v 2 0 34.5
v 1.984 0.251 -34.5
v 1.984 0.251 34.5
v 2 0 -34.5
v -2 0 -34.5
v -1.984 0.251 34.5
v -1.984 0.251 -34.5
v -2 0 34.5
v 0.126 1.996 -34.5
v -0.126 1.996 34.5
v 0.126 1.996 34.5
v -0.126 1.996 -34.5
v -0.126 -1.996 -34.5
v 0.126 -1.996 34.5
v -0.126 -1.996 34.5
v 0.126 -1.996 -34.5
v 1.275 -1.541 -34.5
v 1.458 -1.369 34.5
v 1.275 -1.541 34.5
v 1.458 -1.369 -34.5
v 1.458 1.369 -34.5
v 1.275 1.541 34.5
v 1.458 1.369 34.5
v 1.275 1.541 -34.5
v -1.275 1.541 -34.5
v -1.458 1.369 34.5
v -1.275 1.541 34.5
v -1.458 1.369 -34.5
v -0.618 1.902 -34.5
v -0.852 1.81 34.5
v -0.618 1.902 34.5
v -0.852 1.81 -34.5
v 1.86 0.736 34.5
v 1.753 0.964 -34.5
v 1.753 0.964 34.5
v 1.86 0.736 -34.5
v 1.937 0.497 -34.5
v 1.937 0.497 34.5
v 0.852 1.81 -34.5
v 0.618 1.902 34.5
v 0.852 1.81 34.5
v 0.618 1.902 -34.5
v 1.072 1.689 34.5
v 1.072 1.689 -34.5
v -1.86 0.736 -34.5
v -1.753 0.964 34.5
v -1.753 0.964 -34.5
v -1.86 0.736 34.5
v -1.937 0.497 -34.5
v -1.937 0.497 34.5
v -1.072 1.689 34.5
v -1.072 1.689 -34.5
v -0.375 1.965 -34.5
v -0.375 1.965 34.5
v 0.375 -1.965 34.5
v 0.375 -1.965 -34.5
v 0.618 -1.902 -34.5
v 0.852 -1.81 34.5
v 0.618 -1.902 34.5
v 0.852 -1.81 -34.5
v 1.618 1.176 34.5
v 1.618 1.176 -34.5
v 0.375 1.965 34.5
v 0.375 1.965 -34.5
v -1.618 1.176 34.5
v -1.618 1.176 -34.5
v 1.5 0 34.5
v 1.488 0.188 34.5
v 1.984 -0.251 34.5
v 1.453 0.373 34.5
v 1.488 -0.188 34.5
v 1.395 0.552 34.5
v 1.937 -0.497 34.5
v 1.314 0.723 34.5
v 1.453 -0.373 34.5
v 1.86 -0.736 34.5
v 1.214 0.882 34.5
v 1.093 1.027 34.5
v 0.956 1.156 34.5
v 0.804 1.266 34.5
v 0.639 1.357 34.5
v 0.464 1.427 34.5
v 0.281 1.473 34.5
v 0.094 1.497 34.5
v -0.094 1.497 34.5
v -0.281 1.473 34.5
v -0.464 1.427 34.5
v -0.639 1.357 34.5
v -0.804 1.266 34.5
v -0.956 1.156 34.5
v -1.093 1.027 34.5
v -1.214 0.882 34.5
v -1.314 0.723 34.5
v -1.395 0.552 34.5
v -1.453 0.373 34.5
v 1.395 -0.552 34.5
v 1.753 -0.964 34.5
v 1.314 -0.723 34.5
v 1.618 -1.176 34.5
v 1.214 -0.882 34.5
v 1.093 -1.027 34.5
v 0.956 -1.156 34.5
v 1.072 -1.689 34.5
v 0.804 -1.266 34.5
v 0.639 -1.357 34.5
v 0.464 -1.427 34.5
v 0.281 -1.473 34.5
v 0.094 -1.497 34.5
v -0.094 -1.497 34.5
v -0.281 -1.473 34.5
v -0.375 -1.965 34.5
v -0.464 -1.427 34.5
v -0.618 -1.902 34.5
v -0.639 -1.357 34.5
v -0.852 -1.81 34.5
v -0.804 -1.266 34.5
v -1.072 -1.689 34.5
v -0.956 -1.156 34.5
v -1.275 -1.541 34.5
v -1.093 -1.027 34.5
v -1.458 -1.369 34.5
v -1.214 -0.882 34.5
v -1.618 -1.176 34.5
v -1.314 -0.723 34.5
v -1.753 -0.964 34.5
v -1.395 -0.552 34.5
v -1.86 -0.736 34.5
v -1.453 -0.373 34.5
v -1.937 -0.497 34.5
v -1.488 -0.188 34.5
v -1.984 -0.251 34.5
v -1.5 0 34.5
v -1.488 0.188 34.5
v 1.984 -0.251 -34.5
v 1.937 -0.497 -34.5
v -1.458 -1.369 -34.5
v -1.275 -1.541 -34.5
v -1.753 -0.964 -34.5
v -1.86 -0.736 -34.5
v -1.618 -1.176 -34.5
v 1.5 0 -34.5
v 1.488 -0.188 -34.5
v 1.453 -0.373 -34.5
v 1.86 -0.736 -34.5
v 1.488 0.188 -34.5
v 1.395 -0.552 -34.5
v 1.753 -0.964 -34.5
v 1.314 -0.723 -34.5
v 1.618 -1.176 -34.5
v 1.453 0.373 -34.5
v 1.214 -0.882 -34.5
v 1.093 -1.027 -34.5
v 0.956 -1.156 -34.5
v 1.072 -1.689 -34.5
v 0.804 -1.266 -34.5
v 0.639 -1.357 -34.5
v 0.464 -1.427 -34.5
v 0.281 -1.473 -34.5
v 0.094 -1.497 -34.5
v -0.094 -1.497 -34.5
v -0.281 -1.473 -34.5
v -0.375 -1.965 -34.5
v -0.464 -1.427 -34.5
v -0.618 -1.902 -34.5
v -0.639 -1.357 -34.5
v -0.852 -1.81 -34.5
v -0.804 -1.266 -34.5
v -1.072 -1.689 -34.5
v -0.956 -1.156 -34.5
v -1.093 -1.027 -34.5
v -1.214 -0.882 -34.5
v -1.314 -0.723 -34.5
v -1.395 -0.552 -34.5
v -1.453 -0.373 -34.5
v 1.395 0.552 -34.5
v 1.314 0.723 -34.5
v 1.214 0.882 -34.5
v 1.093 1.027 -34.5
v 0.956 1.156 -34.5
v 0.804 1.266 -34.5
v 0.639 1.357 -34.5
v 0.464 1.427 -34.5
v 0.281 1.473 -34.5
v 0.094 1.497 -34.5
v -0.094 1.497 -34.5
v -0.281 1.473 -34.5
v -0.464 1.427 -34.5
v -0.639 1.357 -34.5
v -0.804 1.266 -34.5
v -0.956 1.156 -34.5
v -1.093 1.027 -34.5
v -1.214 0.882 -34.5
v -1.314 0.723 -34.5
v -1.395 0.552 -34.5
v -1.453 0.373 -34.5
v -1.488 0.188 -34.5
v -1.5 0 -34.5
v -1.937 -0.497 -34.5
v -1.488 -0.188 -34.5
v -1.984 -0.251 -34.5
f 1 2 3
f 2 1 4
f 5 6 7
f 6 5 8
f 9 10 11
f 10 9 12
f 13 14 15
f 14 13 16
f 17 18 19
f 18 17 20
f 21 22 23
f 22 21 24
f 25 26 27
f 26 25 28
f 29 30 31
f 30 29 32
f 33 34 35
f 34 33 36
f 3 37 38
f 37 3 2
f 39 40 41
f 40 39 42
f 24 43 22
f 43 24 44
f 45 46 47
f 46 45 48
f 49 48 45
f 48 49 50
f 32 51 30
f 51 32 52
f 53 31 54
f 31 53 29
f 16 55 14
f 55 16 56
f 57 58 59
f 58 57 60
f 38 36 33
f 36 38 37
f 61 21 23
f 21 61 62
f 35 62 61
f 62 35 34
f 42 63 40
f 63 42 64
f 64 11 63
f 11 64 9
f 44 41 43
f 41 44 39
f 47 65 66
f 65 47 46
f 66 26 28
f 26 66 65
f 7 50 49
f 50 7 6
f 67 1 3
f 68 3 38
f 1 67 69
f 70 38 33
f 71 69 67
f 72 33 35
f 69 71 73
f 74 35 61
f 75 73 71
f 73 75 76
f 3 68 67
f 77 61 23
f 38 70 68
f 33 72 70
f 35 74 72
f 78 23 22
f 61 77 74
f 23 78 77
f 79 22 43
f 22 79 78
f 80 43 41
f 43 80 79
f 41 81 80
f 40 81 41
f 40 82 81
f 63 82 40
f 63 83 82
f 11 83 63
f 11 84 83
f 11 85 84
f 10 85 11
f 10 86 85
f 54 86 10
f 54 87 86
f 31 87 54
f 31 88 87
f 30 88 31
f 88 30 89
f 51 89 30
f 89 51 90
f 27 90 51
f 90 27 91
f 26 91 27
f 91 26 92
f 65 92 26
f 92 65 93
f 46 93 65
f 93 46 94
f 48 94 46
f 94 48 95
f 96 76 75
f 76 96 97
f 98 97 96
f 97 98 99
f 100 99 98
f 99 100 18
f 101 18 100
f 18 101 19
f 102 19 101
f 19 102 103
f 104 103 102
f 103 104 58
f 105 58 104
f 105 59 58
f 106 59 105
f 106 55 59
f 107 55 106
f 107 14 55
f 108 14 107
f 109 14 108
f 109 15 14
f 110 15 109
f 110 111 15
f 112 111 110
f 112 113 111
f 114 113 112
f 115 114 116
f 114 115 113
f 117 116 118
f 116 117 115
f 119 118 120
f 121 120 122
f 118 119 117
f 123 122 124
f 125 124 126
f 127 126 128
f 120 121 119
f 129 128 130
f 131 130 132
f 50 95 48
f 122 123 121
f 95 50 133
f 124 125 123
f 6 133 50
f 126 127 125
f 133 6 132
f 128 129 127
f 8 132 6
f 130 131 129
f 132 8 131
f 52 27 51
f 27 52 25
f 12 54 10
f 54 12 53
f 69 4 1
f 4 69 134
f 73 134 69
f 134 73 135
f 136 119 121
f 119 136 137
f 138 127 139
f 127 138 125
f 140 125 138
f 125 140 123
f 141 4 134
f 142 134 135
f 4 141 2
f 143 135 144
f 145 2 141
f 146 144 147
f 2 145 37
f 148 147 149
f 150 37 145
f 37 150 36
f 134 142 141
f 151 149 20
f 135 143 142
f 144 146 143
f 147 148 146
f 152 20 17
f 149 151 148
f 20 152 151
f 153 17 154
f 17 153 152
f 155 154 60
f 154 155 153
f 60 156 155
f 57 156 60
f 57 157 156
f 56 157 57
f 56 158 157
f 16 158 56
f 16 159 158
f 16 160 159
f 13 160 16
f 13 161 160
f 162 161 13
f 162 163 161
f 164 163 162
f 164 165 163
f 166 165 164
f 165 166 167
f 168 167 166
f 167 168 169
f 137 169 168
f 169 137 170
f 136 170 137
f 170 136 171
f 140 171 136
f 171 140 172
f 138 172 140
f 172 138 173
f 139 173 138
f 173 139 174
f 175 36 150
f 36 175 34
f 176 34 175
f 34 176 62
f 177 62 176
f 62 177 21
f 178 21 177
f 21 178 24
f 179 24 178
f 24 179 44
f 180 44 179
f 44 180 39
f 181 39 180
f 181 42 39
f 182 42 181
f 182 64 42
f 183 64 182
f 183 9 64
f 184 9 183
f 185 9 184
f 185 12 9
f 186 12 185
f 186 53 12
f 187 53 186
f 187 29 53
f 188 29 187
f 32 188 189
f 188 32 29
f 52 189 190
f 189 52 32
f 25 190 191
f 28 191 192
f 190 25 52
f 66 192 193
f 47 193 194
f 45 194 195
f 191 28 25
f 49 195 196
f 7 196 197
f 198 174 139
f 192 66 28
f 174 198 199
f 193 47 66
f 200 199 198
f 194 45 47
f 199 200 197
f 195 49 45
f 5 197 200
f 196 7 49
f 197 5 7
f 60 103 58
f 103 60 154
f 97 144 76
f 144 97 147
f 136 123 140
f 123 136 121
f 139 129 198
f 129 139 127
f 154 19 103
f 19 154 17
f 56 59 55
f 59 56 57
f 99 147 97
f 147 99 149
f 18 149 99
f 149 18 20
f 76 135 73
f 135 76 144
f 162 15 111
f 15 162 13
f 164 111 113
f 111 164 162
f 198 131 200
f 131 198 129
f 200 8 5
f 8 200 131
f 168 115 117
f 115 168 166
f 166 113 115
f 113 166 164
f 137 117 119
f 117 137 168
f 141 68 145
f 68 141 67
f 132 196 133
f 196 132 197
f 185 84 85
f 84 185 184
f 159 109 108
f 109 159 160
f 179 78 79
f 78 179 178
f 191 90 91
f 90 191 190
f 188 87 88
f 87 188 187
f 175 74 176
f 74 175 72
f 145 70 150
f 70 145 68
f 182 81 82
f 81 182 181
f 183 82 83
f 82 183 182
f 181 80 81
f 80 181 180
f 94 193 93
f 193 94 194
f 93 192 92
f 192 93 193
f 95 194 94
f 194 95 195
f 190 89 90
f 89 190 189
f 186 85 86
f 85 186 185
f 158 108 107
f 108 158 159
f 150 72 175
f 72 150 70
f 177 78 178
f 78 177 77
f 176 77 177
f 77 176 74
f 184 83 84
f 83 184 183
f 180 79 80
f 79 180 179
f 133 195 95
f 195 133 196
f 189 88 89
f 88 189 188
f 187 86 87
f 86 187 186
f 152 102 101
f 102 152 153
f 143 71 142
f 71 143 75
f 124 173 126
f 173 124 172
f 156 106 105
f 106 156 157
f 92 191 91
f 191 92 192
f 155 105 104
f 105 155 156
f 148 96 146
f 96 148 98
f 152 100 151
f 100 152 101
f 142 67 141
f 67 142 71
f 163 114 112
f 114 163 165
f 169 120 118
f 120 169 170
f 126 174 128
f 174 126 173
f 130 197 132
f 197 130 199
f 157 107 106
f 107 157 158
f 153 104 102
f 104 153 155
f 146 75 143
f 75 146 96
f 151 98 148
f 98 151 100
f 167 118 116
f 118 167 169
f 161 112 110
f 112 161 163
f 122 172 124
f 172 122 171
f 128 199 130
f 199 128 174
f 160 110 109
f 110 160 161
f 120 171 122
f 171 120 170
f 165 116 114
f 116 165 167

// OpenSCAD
$fn = 50;


difference() {
	union() {
		translate(v = [0, 0, -34.5000000000]) {
			cylinder(h = 69, r = 2.0000000000);
		}
	}
	union() {
		translate(v = [0, 0, -100.0000000000]) {
			cylinder(h = 200, r = 1.5000000000);
		}
	}
}
